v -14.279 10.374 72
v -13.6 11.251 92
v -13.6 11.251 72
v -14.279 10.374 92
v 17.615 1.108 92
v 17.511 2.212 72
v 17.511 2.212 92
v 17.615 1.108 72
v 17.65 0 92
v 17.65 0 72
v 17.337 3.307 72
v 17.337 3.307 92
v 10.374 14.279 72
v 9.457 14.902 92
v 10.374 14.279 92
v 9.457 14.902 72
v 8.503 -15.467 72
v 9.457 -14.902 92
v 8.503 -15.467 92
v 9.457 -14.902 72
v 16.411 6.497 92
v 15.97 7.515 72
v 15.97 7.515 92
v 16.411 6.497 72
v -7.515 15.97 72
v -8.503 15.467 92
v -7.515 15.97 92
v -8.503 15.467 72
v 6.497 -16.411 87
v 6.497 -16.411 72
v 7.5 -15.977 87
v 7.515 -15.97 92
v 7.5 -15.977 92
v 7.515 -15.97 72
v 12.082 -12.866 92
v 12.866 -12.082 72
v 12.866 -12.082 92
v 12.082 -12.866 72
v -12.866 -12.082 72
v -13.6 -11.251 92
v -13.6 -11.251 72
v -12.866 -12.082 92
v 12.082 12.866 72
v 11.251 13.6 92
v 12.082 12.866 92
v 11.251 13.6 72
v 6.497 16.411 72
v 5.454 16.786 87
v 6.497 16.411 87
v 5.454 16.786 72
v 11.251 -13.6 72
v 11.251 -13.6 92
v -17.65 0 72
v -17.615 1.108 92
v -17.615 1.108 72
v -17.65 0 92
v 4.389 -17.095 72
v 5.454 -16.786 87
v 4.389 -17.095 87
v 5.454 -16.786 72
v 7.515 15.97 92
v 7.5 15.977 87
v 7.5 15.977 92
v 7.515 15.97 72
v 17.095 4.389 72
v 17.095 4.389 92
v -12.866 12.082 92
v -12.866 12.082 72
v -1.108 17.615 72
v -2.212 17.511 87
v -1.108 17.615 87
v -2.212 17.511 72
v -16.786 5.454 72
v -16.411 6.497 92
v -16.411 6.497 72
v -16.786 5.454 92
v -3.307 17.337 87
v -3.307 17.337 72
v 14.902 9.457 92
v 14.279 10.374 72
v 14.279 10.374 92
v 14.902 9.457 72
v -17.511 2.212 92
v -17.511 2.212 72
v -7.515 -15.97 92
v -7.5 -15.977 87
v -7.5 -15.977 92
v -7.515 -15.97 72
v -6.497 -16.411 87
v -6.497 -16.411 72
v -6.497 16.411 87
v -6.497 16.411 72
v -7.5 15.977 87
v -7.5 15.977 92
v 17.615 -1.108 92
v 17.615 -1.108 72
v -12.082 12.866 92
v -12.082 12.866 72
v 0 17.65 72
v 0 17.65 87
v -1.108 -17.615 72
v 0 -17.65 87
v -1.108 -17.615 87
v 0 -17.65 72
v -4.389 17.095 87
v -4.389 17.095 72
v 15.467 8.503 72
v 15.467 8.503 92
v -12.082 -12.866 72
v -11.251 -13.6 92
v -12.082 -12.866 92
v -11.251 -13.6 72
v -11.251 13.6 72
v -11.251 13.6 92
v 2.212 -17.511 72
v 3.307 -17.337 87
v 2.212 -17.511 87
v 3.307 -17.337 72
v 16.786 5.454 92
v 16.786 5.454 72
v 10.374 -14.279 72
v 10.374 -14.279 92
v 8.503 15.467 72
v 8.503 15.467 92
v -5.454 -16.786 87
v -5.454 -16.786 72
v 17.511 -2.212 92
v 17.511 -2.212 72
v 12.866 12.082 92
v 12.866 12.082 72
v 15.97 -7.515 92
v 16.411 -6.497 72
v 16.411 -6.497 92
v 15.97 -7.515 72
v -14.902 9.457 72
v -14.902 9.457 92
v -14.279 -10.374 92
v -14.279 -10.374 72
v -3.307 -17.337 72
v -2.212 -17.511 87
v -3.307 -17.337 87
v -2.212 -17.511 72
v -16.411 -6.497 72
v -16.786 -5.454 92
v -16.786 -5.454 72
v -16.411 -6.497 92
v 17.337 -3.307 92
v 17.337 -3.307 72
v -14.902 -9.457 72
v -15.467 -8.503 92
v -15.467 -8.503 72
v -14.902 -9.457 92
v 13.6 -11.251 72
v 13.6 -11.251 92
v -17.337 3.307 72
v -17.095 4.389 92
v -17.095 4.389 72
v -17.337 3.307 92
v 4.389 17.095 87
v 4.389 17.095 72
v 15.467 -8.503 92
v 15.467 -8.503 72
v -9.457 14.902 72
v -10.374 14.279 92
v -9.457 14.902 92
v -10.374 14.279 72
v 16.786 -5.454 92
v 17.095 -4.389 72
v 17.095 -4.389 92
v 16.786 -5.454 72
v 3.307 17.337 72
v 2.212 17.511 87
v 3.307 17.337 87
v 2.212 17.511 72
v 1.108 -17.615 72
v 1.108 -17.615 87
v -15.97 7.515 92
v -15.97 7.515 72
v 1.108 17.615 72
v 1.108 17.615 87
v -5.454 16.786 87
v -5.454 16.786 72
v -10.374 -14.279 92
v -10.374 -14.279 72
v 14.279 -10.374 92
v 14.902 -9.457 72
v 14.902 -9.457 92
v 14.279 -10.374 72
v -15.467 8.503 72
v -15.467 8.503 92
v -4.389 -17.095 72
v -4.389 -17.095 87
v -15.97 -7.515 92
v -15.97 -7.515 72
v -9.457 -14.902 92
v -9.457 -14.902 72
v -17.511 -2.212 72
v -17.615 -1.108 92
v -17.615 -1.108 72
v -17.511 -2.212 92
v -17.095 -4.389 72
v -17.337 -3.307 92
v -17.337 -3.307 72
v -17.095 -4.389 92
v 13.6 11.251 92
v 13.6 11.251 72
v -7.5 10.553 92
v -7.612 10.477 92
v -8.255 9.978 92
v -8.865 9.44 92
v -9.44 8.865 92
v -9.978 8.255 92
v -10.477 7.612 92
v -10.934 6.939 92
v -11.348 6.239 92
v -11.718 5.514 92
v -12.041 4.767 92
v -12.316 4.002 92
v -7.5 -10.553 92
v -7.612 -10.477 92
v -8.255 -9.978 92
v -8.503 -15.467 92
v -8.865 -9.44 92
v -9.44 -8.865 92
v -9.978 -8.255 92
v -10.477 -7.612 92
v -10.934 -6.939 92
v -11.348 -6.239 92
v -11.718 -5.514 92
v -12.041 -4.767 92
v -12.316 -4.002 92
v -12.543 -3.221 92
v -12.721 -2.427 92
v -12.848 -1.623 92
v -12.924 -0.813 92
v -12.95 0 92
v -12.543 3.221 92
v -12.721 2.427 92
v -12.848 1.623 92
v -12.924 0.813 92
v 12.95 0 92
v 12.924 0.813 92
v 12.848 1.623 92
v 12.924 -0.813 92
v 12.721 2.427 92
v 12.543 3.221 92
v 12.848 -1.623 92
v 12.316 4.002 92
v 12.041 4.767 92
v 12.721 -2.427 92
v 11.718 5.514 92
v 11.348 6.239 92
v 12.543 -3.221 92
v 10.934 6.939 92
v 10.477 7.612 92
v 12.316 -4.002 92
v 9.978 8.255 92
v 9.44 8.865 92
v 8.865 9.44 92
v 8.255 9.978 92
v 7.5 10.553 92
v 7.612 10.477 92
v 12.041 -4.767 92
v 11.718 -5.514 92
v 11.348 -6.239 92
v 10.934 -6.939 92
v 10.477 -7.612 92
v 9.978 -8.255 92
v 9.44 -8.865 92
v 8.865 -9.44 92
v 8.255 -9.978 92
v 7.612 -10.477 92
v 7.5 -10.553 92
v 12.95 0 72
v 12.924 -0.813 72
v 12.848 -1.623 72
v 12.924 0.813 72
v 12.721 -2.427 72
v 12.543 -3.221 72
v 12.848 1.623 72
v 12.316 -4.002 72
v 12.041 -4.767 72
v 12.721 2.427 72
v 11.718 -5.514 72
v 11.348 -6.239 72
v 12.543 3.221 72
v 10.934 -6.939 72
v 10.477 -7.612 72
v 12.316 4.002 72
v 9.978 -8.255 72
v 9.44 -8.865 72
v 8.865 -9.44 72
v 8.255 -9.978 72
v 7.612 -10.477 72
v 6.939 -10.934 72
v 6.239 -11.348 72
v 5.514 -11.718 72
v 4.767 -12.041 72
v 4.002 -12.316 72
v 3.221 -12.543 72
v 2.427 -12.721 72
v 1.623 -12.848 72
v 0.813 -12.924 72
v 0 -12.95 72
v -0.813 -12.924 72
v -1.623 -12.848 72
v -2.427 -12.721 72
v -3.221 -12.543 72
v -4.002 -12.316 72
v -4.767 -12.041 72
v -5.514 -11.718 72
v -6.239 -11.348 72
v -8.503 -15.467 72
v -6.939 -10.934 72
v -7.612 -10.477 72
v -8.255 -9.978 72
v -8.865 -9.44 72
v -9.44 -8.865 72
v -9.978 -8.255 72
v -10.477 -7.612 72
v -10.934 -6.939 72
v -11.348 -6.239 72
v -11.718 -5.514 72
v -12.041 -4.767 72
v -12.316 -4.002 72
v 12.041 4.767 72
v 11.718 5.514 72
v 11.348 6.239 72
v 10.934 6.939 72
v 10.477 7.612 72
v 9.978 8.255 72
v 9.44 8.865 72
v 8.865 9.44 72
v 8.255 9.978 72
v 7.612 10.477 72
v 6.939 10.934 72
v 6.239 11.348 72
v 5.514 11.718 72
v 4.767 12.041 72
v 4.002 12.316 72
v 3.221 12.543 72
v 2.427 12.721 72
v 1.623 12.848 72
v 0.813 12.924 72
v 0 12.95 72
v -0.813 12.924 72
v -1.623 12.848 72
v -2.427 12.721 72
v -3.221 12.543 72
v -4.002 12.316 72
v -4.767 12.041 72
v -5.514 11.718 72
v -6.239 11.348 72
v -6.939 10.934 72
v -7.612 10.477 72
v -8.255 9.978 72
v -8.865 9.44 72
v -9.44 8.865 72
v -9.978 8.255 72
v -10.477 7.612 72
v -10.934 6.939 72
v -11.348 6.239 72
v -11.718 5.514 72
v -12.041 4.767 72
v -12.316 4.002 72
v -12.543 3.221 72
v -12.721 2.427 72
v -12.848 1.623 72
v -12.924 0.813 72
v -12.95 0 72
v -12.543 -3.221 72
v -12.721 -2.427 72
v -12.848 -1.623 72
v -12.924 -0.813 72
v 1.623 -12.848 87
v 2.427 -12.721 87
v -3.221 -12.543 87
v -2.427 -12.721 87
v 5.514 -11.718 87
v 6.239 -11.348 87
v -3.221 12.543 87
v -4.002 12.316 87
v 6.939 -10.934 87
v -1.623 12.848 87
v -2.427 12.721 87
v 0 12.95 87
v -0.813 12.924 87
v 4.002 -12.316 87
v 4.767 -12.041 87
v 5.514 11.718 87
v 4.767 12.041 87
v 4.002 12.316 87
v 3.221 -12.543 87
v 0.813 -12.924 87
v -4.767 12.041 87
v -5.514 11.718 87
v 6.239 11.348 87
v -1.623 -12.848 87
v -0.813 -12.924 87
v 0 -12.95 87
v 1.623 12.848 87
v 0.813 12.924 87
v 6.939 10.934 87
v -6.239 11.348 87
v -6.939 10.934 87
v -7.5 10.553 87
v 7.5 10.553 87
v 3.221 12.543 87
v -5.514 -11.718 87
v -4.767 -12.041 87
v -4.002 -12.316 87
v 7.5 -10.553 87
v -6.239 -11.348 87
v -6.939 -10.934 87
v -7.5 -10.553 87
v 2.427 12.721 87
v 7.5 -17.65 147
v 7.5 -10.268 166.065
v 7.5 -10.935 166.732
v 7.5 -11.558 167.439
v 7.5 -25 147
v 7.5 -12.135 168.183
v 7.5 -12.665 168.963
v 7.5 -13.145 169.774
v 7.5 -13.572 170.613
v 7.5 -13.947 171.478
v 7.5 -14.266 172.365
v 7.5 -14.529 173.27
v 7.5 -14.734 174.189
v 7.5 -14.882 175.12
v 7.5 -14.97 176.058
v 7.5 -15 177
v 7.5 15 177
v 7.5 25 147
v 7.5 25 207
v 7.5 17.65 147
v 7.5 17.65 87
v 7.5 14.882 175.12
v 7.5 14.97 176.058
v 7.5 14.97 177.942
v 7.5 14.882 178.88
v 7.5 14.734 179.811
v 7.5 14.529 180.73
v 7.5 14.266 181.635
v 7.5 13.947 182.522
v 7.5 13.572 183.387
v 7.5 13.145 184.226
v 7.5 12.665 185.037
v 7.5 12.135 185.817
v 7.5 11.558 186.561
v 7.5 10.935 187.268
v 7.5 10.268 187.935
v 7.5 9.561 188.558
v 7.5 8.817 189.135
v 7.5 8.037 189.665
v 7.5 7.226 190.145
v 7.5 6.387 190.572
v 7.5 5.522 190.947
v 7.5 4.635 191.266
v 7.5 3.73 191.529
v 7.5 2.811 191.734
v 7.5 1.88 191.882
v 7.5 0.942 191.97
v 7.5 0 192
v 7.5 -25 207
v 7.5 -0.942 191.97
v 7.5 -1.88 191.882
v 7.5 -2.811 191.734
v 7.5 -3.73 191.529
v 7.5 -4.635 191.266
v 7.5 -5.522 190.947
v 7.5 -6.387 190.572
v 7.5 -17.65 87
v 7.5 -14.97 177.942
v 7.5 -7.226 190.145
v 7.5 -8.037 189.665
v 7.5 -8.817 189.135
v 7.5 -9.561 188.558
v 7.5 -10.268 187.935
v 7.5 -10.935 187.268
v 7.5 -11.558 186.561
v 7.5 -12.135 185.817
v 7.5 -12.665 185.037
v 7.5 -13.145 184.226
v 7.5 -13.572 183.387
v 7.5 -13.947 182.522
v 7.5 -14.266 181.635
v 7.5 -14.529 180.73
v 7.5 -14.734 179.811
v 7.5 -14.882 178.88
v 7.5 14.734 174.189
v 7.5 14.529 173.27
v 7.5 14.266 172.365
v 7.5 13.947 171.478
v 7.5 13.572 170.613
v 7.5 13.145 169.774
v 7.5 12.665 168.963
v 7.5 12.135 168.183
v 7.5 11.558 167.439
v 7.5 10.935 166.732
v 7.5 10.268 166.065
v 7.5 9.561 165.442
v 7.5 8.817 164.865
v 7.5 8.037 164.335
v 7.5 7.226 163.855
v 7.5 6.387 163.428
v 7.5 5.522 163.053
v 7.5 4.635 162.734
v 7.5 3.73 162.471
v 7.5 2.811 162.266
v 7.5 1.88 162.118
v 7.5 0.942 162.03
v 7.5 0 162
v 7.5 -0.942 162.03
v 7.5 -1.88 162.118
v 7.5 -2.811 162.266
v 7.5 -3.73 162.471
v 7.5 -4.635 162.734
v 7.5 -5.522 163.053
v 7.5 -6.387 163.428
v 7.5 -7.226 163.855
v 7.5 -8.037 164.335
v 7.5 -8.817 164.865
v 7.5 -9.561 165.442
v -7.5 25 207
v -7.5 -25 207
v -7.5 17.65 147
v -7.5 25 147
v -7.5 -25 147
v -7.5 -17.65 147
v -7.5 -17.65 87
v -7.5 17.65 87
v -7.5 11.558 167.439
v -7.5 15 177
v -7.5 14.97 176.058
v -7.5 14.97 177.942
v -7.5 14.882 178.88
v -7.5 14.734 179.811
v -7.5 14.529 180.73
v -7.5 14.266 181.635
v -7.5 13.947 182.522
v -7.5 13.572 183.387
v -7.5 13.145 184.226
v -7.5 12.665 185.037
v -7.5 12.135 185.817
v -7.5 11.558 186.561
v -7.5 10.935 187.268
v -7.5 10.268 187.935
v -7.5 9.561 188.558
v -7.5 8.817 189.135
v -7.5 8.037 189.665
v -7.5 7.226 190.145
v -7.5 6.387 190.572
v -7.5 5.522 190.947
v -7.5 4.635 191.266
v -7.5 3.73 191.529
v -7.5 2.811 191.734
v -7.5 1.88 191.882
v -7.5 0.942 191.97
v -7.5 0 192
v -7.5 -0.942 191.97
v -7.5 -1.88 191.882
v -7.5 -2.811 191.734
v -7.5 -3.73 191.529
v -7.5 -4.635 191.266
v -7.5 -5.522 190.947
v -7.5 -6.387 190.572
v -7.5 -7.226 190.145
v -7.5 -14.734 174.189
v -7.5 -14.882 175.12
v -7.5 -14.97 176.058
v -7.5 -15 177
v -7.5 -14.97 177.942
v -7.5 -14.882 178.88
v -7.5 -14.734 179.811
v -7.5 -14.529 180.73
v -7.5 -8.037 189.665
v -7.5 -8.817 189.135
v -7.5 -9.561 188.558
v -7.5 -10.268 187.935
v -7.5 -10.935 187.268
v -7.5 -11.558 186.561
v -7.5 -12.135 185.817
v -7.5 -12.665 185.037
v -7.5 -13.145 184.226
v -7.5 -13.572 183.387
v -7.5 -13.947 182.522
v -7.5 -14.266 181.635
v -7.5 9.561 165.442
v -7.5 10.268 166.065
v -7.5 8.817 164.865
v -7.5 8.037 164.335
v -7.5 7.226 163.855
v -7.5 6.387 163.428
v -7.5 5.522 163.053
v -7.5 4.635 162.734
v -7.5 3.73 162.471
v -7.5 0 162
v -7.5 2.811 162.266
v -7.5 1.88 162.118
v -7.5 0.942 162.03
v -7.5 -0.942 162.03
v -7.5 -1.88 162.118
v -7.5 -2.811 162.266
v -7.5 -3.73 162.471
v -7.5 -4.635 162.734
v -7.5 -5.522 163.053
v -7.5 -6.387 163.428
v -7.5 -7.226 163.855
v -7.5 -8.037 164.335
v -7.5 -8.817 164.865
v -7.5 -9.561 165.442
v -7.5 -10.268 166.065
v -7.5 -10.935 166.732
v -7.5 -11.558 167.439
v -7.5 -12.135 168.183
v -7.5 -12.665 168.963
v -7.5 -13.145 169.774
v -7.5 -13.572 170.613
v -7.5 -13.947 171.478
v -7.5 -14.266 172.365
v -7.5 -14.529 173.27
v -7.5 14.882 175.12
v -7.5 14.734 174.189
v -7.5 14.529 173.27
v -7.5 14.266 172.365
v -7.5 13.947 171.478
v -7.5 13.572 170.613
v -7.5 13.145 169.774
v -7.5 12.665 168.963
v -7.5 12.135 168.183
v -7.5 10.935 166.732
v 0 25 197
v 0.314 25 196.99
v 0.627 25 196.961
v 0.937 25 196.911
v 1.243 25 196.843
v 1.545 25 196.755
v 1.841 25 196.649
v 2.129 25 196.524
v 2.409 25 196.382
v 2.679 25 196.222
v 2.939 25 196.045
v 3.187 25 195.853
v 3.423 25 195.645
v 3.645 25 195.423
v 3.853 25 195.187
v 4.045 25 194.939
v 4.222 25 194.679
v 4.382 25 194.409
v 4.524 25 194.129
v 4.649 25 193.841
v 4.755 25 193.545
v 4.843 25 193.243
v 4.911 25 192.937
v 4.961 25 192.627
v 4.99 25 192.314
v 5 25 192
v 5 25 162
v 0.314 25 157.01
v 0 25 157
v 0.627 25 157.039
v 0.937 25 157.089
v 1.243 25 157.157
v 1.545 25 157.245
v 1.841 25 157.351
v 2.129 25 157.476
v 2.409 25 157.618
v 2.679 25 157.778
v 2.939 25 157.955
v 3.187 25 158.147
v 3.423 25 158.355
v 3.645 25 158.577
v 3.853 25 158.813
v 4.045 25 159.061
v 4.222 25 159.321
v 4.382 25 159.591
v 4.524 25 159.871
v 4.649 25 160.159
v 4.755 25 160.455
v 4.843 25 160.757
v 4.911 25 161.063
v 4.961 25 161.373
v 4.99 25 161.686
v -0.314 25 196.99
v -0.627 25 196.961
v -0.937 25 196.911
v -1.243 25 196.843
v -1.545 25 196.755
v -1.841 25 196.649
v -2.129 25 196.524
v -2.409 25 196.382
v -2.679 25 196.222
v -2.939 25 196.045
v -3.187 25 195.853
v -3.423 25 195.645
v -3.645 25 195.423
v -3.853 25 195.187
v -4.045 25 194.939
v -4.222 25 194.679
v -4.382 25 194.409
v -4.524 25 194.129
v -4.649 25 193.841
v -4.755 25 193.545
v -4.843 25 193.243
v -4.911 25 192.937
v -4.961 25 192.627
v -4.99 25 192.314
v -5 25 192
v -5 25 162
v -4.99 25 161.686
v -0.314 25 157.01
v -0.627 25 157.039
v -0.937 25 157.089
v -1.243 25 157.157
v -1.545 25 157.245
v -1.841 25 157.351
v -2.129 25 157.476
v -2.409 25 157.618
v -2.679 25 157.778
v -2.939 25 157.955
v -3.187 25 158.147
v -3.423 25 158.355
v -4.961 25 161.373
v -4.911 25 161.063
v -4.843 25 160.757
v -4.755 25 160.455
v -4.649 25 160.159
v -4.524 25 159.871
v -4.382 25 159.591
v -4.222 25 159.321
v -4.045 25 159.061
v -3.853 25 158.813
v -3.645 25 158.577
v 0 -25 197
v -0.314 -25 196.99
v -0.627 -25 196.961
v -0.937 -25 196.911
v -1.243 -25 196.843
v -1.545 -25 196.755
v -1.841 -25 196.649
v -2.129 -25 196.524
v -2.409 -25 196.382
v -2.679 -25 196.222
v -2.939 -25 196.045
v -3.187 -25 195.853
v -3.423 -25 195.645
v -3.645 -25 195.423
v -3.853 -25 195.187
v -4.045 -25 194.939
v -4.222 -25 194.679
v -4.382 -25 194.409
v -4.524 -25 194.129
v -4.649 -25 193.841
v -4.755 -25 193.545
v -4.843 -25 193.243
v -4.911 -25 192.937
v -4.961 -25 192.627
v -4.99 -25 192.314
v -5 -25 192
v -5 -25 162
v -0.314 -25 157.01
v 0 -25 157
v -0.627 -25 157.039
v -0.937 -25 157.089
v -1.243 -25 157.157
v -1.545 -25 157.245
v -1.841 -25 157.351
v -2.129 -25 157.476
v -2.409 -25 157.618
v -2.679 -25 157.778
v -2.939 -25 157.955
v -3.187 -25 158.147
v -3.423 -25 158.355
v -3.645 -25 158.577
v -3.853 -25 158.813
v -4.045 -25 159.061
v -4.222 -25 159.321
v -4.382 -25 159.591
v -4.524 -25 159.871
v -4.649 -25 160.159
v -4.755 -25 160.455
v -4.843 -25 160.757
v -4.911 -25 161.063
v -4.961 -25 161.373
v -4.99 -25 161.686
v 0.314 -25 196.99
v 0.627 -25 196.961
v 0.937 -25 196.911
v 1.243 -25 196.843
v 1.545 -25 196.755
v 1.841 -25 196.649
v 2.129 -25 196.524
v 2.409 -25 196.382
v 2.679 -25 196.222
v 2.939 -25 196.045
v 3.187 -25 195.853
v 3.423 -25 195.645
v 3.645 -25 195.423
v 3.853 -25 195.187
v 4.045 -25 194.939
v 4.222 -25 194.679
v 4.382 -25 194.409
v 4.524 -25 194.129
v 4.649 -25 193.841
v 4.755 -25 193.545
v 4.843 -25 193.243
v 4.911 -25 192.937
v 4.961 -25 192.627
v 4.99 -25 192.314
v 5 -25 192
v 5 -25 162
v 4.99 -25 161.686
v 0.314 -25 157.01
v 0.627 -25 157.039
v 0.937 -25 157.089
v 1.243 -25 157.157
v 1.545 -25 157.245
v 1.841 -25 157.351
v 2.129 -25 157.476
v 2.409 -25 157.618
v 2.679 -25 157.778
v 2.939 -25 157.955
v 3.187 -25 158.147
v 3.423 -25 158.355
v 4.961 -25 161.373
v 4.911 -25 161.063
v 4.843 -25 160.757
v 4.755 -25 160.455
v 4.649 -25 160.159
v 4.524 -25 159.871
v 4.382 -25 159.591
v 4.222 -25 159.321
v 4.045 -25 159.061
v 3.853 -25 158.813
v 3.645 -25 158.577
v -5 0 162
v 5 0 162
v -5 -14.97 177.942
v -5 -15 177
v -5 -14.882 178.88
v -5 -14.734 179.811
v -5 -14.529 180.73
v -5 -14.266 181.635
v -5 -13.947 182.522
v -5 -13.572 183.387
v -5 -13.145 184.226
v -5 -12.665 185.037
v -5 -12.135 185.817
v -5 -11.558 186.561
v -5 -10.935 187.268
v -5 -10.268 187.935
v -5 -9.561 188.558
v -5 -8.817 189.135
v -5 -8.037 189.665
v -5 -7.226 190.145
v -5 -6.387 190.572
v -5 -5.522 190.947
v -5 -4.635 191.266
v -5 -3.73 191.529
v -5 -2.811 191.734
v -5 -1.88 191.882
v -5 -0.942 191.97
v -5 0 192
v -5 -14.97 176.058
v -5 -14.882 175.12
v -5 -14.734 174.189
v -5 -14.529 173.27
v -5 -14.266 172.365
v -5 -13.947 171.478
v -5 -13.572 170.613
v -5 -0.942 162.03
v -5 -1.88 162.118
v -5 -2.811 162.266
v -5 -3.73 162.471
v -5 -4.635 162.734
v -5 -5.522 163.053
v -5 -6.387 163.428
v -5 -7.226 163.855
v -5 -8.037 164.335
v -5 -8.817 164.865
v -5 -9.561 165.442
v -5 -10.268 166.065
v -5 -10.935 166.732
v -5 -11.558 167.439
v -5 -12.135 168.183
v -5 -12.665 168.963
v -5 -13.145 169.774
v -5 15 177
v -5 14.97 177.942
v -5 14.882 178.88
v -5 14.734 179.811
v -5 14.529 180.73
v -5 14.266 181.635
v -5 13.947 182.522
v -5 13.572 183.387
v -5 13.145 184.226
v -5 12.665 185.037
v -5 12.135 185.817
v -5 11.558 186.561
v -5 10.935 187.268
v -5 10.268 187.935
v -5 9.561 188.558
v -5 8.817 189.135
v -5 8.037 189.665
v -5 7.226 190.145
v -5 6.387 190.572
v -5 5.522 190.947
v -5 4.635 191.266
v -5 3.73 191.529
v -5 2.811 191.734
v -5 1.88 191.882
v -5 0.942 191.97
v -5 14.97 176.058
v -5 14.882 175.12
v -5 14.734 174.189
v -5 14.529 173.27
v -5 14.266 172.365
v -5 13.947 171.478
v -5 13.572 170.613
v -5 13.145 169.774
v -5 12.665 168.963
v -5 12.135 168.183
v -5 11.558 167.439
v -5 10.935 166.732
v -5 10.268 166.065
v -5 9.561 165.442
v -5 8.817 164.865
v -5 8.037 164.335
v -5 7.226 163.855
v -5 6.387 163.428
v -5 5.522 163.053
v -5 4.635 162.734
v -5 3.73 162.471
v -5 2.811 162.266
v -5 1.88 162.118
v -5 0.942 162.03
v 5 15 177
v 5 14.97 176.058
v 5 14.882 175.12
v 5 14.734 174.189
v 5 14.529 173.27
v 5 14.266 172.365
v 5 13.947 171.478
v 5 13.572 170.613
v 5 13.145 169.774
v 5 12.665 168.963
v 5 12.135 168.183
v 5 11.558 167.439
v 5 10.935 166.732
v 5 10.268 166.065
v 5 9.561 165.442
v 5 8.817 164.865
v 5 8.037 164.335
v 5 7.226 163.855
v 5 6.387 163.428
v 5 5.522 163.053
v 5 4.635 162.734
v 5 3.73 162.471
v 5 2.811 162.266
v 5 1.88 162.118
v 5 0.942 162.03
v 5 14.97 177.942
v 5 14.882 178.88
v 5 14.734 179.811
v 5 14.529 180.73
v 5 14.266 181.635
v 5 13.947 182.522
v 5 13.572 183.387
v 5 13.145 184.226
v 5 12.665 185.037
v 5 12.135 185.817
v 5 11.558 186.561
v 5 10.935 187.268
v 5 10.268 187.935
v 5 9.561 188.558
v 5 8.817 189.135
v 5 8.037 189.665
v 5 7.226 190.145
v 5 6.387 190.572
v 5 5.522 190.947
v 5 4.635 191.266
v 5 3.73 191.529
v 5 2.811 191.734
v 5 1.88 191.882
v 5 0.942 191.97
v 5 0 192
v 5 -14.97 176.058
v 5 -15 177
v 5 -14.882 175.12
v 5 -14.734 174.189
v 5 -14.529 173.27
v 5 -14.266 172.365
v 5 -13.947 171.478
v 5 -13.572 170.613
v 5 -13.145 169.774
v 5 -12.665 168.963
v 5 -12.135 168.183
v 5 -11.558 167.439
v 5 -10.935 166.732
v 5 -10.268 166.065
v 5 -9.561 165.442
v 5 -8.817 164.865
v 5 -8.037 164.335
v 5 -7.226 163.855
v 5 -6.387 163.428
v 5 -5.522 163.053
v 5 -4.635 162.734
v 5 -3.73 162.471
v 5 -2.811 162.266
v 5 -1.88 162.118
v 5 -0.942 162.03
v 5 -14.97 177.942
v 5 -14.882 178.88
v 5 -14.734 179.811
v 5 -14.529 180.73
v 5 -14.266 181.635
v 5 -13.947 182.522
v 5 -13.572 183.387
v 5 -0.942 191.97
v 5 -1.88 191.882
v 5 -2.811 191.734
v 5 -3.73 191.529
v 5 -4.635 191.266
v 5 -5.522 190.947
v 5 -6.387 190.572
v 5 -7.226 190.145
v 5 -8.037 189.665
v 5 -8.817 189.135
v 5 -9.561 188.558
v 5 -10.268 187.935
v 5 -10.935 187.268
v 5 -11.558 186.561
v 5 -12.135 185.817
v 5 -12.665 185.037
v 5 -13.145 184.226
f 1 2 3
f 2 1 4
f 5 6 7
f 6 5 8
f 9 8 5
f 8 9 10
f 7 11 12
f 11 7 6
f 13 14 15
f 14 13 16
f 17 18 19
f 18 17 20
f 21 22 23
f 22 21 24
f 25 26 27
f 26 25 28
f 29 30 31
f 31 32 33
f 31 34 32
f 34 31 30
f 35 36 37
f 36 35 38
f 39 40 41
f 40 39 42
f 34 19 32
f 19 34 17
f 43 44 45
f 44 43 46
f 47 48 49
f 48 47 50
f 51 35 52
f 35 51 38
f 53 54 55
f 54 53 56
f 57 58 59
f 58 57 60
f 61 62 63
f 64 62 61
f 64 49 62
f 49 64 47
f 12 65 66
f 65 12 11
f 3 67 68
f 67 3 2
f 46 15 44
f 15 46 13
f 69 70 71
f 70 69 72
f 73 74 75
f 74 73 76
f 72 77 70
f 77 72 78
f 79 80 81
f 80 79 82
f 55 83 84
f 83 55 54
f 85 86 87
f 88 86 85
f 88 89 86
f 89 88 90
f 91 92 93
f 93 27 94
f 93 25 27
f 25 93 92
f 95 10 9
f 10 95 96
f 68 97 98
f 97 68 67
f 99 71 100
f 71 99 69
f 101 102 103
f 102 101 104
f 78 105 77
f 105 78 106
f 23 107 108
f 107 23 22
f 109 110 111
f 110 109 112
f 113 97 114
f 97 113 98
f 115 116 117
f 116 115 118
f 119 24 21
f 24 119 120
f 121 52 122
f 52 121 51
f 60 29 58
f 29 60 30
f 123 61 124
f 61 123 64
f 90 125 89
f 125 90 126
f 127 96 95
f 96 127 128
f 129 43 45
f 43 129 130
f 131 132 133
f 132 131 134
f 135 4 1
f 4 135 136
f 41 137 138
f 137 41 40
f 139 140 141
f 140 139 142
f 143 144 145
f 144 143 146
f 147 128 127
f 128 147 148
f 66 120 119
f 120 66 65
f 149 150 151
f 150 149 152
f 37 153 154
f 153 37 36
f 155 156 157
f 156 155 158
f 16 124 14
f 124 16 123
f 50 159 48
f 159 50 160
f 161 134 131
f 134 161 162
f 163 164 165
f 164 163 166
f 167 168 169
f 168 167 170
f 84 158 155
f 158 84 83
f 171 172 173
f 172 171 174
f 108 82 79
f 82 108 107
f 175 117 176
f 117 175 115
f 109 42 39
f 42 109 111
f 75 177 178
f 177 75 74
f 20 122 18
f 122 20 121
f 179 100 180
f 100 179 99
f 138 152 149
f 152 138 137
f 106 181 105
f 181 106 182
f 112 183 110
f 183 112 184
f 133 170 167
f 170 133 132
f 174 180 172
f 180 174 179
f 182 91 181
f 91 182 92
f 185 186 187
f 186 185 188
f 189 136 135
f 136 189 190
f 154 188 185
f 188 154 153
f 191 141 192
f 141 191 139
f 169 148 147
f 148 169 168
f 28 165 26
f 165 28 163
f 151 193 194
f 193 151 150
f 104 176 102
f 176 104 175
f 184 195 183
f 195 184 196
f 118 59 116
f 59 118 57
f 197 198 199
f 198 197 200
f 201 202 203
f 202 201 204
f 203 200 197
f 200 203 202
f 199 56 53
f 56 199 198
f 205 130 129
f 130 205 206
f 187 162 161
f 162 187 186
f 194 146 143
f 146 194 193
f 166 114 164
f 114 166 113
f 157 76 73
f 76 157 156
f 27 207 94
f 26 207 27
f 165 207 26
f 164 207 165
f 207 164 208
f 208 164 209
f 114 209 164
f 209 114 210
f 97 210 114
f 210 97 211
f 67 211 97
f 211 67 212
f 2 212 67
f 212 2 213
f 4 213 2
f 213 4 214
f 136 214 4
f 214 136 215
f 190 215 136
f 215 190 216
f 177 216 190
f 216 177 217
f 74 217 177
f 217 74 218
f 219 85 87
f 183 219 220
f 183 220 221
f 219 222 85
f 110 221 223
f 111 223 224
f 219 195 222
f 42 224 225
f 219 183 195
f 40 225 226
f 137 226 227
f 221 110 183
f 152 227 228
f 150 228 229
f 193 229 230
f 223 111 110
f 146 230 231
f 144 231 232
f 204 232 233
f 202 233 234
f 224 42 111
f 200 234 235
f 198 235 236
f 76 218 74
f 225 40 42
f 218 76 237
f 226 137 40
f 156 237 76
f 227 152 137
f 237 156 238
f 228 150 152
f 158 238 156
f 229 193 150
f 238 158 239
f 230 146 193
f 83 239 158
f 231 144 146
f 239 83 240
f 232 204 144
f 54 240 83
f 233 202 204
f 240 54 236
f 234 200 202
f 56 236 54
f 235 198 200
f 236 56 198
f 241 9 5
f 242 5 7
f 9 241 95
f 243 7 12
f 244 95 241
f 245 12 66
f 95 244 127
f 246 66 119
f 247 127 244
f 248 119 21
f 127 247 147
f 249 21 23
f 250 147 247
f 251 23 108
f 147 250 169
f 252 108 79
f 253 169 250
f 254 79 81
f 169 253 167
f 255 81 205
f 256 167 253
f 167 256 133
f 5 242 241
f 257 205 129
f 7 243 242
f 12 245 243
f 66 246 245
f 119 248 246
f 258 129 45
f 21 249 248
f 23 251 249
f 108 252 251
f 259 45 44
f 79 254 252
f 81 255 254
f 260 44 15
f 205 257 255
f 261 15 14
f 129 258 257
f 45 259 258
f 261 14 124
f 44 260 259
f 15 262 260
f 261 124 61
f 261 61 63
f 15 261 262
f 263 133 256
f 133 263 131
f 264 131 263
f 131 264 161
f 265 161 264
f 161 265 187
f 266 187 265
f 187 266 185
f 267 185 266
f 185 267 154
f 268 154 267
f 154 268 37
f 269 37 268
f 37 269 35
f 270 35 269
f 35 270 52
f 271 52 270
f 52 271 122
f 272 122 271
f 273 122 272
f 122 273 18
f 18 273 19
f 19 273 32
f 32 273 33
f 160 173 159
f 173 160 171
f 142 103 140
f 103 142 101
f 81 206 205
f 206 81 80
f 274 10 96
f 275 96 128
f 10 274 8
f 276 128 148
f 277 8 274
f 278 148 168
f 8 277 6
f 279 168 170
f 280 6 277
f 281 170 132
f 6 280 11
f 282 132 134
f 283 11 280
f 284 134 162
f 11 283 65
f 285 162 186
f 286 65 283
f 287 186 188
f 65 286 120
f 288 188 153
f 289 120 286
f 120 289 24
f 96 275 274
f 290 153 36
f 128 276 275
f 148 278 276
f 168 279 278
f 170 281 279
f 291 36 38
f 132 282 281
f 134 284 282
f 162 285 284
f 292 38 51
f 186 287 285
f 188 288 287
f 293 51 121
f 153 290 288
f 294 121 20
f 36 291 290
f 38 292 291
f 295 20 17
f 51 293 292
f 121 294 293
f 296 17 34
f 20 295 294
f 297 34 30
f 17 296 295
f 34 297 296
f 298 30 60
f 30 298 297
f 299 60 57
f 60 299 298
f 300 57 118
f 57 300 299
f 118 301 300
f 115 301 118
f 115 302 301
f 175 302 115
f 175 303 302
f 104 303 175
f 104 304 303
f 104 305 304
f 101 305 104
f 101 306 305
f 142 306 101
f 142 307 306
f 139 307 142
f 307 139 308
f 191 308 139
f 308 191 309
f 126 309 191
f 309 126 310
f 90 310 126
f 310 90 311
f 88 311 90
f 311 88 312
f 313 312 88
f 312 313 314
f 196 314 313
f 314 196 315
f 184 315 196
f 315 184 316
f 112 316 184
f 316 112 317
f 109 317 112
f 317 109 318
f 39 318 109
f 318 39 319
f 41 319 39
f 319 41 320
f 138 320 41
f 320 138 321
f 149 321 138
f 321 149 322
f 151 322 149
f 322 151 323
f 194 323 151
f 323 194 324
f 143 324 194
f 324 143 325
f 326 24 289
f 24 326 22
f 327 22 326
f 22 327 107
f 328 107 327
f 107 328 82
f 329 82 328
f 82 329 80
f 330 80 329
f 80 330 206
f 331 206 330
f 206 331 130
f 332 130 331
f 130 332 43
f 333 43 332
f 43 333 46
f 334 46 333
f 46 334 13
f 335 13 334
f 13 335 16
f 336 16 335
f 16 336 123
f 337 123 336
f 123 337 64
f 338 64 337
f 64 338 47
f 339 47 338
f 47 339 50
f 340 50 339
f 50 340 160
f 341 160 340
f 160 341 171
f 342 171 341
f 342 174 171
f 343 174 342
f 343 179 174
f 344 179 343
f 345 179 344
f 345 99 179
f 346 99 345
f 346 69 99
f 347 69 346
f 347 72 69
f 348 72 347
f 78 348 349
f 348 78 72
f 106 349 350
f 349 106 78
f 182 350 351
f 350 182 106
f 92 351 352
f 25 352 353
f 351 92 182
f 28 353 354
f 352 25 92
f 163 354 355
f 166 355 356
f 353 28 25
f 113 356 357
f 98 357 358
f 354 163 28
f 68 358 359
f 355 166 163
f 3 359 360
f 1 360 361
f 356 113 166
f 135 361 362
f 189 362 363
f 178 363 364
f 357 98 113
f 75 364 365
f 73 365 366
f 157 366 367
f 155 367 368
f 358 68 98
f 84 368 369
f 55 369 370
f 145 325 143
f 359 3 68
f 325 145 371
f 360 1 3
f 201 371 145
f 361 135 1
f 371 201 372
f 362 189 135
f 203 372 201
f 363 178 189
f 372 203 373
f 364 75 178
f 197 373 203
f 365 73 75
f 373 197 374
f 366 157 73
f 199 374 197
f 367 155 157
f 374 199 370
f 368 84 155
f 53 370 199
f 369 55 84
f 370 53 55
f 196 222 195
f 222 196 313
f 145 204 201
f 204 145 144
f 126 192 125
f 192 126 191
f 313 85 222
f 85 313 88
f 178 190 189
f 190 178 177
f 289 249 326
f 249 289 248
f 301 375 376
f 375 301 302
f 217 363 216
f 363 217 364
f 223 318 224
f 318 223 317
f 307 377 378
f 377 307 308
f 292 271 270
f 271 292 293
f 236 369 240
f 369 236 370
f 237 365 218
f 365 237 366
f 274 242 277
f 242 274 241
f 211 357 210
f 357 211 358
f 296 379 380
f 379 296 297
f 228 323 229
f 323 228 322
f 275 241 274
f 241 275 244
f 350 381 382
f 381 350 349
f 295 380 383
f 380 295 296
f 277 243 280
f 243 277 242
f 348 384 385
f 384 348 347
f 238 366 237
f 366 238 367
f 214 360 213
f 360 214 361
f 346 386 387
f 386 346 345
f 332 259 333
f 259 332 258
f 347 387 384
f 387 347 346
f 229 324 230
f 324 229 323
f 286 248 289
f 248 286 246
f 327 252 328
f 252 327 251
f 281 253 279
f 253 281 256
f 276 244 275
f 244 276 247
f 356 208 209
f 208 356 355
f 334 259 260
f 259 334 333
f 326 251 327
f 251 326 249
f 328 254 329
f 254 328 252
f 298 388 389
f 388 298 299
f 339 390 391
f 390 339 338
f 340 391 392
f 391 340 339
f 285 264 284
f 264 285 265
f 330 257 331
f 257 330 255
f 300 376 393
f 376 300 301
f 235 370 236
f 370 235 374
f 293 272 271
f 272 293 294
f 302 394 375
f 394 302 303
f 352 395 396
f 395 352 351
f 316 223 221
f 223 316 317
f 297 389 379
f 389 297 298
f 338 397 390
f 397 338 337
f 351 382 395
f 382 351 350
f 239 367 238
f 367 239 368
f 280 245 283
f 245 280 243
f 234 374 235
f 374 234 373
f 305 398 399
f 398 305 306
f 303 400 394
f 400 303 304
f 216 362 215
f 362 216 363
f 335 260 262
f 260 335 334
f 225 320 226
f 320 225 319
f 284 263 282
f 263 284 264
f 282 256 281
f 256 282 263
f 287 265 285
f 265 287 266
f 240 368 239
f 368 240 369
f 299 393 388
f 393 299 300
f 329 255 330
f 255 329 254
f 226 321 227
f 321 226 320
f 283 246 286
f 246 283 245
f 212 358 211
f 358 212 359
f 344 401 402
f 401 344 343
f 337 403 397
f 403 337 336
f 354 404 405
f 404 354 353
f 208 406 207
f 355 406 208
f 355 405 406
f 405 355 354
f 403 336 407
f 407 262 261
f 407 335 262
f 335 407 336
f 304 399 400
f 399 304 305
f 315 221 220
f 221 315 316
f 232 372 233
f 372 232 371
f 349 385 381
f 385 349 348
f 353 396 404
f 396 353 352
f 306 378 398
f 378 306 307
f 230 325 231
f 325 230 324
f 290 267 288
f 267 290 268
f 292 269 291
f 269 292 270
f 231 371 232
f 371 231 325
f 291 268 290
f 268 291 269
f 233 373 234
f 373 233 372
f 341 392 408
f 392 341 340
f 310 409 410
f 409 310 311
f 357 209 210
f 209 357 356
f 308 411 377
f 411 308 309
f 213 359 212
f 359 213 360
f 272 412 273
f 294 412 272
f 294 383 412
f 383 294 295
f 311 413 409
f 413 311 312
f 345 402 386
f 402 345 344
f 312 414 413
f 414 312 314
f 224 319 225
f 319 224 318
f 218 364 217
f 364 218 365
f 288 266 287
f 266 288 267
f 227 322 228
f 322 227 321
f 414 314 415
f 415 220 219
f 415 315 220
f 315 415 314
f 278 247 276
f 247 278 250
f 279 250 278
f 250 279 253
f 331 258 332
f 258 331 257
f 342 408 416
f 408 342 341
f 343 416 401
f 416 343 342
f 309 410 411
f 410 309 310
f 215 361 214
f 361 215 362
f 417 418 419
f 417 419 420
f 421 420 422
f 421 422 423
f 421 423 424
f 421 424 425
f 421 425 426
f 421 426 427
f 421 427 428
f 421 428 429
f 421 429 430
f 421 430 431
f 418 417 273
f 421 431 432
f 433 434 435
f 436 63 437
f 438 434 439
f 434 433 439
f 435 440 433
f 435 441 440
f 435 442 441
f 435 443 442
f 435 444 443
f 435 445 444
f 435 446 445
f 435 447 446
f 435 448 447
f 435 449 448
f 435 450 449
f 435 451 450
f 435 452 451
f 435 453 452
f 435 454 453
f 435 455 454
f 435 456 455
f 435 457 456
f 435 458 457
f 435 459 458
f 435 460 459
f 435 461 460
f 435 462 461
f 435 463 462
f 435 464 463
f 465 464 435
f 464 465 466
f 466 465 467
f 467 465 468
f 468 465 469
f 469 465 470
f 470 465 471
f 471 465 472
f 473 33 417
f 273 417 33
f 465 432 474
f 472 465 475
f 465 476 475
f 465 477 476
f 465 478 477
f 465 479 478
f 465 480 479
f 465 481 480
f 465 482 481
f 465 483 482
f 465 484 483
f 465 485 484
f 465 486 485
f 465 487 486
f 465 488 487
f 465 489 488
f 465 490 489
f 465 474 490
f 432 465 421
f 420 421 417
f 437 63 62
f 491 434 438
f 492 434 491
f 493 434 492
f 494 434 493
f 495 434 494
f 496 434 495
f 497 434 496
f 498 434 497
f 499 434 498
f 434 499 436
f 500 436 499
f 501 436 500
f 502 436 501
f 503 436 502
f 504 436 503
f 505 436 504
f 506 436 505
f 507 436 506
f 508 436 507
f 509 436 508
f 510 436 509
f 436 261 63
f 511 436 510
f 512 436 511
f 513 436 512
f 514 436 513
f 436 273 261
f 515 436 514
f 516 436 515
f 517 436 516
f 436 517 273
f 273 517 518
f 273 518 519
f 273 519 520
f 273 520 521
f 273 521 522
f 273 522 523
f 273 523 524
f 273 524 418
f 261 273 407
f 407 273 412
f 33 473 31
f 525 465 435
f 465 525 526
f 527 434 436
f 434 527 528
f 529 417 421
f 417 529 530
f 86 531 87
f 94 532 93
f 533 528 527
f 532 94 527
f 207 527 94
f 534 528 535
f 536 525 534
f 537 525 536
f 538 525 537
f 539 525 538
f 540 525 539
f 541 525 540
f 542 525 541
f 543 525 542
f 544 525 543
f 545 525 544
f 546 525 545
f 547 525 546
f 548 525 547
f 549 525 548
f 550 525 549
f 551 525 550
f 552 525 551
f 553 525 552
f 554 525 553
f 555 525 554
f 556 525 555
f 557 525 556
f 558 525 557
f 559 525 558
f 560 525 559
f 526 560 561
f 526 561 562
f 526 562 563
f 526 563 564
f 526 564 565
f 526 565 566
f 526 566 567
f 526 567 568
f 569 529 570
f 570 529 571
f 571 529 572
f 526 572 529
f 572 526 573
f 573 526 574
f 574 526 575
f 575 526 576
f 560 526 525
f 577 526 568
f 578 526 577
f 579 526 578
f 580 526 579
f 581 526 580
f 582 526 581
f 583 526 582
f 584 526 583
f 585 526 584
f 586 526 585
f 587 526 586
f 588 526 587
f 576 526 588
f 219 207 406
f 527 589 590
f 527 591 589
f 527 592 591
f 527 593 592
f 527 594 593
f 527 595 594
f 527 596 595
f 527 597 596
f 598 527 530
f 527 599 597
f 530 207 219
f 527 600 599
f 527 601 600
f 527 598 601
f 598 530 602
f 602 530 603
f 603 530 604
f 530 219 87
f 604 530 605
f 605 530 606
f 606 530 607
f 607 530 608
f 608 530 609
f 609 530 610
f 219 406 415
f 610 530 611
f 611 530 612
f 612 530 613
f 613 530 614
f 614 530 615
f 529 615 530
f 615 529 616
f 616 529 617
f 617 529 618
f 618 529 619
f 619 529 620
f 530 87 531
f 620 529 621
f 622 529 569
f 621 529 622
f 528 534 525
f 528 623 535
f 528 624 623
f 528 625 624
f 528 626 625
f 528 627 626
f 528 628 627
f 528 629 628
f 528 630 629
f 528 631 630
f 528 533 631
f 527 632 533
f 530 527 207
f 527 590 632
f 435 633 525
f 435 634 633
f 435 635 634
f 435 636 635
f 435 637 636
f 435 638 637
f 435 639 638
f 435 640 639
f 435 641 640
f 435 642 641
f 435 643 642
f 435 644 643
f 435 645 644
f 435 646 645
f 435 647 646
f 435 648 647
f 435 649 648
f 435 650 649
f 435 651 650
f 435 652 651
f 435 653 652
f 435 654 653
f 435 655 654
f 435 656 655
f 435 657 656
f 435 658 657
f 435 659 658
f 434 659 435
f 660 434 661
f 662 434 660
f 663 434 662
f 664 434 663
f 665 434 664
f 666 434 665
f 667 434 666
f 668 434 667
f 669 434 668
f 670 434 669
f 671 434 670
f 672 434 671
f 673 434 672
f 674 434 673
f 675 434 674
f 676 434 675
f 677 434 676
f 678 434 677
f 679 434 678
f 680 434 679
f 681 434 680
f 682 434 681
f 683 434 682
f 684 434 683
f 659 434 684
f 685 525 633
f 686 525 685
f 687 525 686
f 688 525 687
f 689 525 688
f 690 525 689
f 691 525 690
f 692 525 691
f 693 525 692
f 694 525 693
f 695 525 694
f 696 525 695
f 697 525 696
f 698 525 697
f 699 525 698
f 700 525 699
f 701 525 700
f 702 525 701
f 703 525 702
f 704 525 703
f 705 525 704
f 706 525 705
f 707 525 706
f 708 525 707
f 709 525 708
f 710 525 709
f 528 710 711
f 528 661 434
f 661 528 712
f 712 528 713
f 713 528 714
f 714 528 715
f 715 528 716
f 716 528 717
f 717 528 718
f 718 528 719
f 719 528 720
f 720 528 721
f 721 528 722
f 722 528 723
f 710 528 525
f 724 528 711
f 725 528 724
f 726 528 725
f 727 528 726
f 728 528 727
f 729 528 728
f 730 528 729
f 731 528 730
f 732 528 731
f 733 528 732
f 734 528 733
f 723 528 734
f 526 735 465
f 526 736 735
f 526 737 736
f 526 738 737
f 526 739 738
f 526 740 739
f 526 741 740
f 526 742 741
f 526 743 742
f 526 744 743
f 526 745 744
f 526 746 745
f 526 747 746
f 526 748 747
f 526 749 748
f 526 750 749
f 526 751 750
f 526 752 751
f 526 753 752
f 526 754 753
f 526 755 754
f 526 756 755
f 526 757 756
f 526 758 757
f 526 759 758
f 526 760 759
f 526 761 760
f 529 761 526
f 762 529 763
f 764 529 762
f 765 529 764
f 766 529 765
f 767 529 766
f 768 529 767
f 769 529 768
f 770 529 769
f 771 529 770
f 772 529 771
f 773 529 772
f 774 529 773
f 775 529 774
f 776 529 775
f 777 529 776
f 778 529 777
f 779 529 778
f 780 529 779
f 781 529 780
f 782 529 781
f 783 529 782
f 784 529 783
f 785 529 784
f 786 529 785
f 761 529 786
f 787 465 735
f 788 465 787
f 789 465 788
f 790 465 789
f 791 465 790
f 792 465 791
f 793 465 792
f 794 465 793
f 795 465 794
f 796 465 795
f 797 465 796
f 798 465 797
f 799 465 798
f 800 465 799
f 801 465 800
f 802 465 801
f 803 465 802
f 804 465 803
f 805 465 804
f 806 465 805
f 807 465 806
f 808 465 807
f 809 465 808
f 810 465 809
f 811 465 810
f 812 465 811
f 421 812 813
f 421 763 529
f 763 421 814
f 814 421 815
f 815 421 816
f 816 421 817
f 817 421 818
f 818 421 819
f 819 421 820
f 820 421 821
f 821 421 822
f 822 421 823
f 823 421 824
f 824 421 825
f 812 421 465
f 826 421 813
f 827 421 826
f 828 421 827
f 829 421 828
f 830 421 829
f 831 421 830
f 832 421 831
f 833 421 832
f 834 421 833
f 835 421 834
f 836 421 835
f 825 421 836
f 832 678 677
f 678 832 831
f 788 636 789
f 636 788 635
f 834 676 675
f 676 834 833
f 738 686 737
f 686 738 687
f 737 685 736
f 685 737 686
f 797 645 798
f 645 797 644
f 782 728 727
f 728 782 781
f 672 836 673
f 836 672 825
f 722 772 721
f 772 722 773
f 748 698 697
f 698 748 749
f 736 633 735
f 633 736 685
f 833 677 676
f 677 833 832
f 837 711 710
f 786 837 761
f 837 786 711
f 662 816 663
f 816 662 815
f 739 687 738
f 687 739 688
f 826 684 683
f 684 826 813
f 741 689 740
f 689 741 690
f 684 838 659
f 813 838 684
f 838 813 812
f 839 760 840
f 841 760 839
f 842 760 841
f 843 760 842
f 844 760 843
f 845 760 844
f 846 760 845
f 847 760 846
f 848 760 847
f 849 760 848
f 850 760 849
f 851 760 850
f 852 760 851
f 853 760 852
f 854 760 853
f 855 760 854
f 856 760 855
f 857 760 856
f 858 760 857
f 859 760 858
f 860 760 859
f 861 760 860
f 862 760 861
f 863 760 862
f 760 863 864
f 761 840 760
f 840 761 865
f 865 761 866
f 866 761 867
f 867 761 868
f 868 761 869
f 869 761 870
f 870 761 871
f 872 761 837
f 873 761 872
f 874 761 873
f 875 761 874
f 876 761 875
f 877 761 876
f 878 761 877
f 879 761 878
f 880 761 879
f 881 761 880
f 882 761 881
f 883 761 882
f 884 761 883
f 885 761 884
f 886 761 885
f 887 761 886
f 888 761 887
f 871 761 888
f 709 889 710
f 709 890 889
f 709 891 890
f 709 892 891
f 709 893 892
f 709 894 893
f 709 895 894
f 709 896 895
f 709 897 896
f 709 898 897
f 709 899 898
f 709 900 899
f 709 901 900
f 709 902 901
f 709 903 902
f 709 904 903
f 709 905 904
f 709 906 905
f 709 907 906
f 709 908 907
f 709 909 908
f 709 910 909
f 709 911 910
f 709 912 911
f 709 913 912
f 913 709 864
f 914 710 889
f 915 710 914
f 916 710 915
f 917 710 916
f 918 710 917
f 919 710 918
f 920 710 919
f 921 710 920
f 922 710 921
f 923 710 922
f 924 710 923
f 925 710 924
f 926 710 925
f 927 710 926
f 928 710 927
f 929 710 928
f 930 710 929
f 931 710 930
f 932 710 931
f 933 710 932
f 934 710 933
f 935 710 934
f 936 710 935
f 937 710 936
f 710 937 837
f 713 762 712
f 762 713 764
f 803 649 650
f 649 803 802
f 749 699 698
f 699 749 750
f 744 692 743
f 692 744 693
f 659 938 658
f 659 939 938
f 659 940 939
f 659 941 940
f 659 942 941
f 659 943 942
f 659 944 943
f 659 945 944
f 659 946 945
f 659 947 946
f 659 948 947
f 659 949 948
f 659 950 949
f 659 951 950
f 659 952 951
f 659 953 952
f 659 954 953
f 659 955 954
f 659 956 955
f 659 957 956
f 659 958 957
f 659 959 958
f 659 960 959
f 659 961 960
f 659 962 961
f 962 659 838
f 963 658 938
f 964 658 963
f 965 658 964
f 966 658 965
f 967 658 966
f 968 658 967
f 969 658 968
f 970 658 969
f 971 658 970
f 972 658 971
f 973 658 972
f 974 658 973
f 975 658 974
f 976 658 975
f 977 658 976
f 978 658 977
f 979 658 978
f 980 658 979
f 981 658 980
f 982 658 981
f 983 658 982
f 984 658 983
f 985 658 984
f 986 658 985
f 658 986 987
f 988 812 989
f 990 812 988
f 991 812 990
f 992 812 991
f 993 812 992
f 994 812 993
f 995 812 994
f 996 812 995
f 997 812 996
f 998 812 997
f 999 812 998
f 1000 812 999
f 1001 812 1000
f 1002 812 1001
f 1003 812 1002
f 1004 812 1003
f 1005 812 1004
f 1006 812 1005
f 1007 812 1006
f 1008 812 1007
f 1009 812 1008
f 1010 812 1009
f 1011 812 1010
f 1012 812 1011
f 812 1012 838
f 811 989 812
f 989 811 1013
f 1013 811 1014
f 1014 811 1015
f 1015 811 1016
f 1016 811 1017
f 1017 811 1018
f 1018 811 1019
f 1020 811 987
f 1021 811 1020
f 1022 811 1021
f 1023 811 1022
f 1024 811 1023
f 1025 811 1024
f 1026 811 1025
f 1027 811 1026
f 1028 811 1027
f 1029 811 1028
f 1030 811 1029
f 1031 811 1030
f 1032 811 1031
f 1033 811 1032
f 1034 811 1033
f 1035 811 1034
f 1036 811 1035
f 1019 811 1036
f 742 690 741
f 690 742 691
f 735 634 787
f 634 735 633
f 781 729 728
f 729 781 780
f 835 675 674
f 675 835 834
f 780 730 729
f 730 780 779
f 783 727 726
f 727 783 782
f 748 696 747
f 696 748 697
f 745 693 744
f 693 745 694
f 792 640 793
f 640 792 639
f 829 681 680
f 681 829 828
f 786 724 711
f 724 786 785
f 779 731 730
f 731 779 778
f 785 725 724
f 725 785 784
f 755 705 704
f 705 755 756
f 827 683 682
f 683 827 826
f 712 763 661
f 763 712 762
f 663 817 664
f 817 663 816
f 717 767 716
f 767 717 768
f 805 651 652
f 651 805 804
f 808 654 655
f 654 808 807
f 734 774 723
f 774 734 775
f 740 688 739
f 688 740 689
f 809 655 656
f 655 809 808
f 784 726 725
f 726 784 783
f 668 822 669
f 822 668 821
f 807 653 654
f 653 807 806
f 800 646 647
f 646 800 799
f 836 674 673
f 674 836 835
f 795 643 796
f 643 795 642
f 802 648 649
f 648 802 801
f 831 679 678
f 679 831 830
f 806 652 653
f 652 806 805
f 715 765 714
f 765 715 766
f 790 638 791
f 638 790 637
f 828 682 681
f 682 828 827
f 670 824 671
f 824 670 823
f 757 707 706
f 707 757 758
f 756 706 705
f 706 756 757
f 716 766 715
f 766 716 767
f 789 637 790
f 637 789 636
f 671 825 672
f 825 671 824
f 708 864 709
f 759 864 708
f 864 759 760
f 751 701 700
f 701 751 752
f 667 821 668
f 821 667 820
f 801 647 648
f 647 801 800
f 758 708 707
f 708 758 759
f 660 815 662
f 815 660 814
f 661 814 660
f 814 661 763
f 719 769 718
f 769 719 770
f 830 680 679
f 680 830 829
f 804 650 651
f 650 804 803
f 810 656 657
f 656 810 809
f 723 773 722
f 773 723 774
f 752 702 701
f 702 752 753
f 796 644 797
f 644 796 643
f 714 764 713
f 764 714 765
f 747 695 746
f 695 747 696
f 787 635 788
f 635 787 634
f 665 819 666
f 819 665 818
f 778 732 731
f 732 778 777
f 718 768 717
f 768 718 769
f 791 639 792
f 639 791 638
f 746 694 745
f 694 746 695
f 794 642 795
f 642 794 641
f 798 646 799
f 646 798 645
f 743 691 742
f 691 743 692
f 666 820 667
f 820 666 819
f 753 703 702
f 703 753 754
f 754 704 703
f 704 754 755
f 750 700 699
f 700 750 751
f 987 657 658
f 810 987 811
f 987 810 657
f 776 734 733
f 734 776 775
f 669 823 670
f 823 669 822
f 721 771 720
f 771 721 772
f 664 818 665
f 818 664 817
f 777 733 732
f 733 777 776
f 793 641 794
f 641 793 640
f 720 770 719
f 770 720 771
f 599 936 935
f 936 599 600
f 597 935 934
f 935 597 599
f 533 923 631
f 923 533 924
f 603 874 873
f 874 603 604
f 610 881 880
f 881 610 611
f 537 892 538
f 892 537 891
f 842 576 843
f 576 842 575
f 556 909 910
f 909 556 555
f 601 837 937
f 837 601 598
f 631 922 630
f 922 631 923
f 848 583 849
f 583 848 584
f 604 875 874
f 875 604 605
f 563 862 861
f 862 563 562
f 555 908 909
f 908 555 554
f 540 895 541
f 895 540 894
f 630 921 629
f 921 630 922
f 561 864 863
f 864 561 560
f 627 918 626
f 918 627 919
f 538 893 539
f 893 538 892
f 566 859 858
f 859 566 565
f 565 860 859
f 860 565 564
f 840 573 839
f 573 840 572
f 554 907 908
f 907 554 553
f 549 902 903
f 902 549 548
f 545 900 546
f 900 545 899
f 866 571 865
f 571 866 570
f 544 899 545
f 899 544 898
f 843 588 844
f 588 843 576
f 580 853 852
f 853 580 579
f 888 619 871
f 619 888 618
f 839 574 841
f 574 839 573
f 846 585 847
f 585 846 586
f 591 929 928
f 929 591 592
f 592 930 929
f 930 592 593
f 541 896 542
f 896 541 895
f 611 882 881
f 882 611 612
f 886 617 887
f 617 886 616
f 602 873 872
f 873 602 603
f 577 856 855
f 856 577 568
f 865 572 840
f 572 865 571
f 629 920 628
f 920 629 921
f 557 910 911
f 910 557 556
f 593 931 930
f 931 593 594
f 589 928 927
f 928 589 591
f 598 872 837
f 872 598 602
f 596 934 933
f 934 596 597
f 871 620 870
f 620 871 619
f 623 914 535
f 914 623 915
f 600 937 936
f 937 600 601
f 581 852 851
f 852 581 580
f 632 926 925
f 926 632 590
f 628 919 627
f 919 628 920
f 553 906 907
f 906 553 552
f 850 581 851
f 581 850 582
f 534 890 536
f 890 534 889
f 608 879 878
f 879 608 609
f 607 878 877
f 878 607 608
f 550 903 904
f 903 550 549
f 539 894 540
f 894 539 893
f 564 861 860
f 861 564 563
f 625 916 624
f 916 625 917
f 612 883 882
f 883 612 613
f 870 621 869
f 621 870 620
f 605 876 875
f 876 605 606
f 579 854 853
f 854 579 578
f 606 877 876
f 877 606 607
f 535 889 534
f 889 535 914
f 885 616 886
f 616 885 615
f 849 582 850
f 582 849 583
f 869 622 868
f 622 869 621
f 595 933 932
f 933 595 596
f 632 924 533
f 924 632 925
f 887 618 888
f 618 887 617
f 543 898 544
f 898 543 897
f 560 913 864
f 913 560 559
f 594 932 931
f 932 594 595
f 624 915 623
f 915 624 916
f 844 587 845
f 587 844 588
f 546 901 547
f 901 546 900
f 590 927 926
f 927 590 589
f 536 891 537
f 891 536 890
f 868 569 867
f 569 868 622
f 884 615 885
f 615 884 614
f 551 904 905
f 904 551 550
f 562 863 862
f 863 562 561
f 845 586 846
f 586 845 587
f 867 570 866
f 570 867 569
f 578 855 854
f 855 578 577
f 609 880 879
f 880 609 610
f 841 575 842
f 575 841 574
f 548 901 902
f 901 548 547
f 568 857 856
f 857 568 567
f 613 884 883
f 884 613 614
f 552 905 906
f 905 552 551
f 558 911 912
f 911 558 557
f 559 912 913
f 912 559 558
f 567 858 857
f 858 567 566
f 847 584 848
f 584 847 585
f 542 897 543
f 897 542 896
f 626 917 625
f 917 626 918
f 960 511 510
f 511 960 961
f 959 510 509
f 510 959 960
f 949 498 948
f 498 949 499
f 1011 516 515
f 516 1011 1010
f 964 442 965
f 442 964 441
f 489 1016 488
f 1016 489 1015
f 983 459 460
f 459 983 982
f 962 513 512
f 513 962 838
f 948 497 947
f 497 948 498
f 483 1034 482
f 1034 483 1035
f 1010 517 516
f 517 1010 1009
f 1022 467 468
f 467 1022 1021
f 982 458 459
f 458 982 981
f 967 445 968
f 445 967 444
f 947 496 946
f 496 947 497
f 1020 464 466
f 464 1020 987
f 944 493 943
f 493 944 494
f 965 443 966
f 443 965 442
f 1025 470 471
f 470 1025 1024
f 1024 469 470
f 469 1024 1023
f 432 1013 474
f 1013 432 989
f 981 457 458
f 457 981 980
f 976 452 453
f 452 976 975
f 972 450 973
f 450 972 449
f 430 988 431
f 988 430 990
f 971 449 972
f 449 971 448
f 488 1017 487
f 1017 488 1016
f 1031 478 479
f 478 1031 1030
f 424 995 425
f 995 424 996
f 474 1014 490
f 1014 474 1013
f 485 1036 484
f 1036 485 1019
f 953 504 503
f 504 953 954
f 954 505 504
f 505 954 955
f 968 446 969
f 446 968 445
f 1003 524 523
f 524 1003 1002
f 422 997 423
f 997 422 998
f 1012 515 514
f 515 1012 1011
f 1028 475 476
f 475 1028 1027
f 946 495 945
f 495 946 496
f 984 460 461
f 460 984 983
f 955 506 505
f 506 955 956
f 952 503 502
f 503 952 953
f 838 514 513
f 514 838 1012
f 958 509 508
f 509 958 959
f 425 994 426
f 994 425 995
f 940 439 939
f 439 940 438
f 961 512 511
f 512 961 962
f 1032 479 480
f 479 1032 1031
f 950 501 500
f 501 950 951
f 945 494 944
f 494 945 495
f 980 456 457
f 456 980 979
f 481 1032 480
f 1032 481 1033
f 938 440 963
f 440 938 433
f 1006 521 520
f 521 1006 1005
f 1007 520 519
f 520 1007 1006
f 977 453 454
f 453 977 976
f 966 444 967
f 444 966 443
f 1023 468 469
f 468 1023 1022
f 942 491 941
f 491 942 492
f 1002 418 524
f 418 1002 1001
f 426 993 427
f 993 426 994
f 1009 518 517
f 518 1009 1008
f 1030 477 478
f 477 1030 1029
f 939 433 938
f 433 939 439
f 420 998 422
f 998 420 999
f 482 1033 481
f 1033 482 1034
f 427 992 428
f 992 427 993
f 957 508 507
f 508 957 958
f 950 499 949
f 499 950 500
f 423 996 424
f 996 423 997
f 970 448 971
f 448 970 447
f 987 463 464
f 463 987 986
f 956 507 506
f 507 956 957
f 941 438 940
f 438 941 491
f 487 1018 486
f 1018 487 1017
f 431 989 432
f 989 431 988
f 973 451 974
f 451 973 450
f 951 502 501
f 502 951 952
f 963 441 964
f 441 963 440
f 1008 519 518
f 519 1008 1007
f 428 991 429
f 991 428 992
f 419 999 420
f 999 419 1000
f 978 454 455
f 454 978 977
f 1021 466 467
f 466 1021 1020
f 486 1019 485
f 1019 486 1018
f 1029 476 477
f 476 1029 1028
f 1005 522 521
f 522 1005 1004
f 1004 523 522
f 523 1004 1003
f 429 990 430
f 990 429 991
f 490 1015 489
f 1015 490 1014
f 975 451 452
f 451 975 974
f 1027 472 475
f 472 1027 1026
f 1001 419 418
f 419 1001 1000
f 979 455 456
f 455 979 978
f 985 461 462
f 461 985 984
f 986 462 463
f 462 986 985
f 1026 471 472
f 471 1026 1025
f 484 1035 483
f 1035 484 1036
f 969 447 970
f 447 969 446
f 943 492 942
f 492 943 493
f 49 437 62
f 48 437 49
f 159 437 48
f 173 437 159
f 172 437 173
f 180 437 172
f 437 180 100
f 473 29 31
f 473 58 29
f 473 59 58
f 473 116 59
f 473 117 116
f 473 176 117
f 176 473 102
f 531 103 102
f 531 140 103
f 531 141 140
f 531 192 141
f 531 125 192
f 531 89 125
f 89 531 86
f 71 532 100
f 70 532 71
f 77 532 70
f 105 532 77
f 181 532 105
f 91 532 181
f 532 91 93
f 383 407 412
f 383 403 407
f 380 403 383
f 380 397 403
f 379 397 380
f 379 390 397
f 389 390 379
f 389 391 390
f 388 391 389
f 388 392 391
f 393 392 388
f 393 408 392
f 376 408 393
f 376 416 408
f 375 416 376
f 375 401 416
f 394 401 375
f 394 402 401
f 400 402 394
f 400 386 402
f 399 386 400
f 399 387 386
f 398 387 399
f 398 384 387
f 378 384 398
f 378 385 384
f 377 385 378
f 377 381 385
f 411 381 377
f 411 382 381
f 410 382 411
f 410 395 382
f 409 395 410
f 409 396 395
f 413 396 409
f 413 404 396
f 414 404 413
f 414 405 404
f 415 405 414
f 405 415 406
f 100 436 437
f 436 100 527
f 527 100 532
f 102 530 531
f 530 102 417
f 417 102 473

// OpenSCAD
// file: funcSuporteDoCuboBaixo_v2.scad
use <funcoes_GFCx.scad>
module funcSuporteDoCuboBaixo_v2(){
    // ----- ----- ----- Declaração de Variáveis ----- ----- ----- //
    res=100;

    // ----- ----- ----- Declaração de Funções ----- ----- ----- //
    
    //funcao_2d_array_cilindros(r,d,h,nx,ny,geo,res,nome="Conjunto 1")

    //suporte do cubo
    difference(){
        translate([-2,-2,0])cube([54,54,120]);
        #translate([8-34/2,-2-54/2,70])cube([2*34,2*54,2*40]);
        #translate([8,-2,10])cube([34,54,50]);
        #translate([-2,8,10])cube([54,34,50]);
        #translate([-2,8,70])cube([54,34,40]);
    }
     difference(){
        translate([-25,-25,0])cube([100,100,15]);
        //#translate([-12.5,-12.5,0])cylinder(h=15, r=3.3);
        //#translate([62.5,62.5,0])cylinder(h=15, r=3.3);
        //#translate([62.5,-12.5,0])cylinder(h=15, r=3.3);
        //#translate([-12.5,62.5,0])cylinder(h=15, r=3.3);
        #translate([-12.5,-12.5,0])
        #funcao_2d_array_cilindros(7/2,25.2,15,4,4,1,res,nome="Base do Suporte");
    }

    //base
    rotate(a=[0,0,0])translate([-2,8,20])
    difference(){
        rotate(a=[90,30,0])translate([0,0,0])cylinder(10,10,10,$fn=3);
        #translate([0,-10,-5])cube([10,10,15]);
    }
    rotate(a=[0,0,90])translate([-2,2,20])
    difference(){
        rotate(a=[90,30,0])translate([0,0,0])cylinder(10,10,10,$fn=3);
        #translate([0,-10,-5])cube([10,10,15]);
    }
    translate([52,52,20])rotate(a=[0,0,270])
    difference(){
        rotate(a=[90,30,0])translate([0,0,0])cylinder(10,10,10,$fn=3);
        #translate([0,-10,-5])cube([10,10,15]);
    }
    translate([8,52,20])rotate(a=[0,0,270])
    difference(){
        rotate(a=[90,30,0])translate([0,0,0])cylinder(10,10,10,$fn=3);
        #translate([0,-10,-5])cube([10,10,15]);
    }
    rotate(a=[0,0,0])translate([-2,52,20])
    difference(){
        rotate(a=[90,30,0])translate([0,0,0])cylinder(10,10,10,$fn=3);
        #translate([0,-10,-5])cube([10,10,15]);
    }
    rotate(a=[0,0,90])translate([-2,-42,20])
    difference(){
        rotate(a=[90,30,0])translate([0,0,0])cylinder(10,10,10,$fn=3);
        #translate([0,-10,-5])cube([10,10,15]);
    }
    translate([52,-2,20])rotate(a=[0,0,180])
    difference(){
        rotate(a=[90,30,0])translate([0,0,0])cylinder(10,10,10,$fn=3);
        #translate([0,-10,-5])cube([10,10,15]);
    }
    translate([52,42,20])rotate(a=[0,0,180])
    difference(){
        rotate(a=[90,30,0])translate([0,0,0])cylinder(10,10,10,$fn=3);
        #translate([0,-10,-5])cube([10,10,15]);
    }
}

translate([25,25,0])
translate([-50,-50,0])
funcSuporteDoCuboBaixo_v2();
// main file
// ----- ----- ----- Declaração de Variáveis ----- ----- ----- //
res=100;
folga1=0.125;

cubox=50-35;
cuboy=50;
cuboz=60;
rBob=15;
esp=2.5;

rInt=10.45;
rExt=12.45;
alt=15;

supr=18;
supalt=5;

// Estamos nos referindo aqui ao encaixe do interior
encx=54.5;
ency=54.5;
encz=10;
espenc=2;

// ----- ----- ----- Declaração de Funções ----- ----- ----- //
use <funcoes_GFCx.scad>
use <funcSuporteDoCuboBaixo_v2.scad>

// ----- ----- ----- MAIN ----- ----- ----- //
//Encaixe Cilíndrico Real
/*difference(){
    cylinder(alt,rExt,rExt,$fn=res);
    #cylinder(alt,rInt,rInt,$fn=res);
}*/


translate([0,0,120]){
    // Encaixe Cilíndrico de Sobra
    translate([0,0,encz+espenc-120+70-encz])
    difference(){
        cylinder(alt+5,rExt+0.2+2*esp,rExt+0.2+2*esp,$fn=res);
        #cylinder(alt+5,rExt+0.5,rExt+0.5,$fn=res);
    }
    translate([-cubox/2,-(rExt+0.2+2*esp),encz+espenc-120+70-encz+alt])
    cube([cubox,2*(rExt+0.2+2*esp),-(-120+70-encz)]);

    // Novo Cubo
    translate([-cubox/2,-cuboy/2,alt+encz+espenc]){
        difference(){
            cube([cubox,cuboy,cuboz]);
            //#translate([esp,esp,4*esp])cube([cubox-2*esp,cuboy-2*esp,cuboz-8*esp]);
            
            //#translate([esp,2*esp,4*esp])cube([cubox-2*esp,cuboy-2*esp,cuboz-8*esp]);
            //#translate([esp,0,4*esp])cube([cubox-2*esp,cuboy-2*esp,cuboz-8*esp]);
            #hull(){
                #translate([esp+(cubox-2*esp)/2,cuboy,4*esp+(cubox-2*esp)/2])rotate([90,0,0])cylinder(cuboy,(cubox-2*esp)/2,(cubox-2*esp)/2,$fn=res);
                #translate([esp+(cubox-2*esp)/2,cuboy,4*esp-(cubox-2*esp)/2+cuboz-8*esp])rotate([90,0,0])cylinder(cuboy,(cubox-2*esp)/2,(cubox-2*esp)/2,$fn=res);
            }
            
            #translate([0,cuboy/2,cuboz/2])
            #rotate([0,90,0])
            #cylinder(esp,rBob,rBob,$fn=res);
            
            #translate([cubox-esp,cuboy/2,cuboz/2])
            #rotate([0,90,0])
            #cylinder(esp,rBob,rBob,$fn=res);
        }
    }
}
